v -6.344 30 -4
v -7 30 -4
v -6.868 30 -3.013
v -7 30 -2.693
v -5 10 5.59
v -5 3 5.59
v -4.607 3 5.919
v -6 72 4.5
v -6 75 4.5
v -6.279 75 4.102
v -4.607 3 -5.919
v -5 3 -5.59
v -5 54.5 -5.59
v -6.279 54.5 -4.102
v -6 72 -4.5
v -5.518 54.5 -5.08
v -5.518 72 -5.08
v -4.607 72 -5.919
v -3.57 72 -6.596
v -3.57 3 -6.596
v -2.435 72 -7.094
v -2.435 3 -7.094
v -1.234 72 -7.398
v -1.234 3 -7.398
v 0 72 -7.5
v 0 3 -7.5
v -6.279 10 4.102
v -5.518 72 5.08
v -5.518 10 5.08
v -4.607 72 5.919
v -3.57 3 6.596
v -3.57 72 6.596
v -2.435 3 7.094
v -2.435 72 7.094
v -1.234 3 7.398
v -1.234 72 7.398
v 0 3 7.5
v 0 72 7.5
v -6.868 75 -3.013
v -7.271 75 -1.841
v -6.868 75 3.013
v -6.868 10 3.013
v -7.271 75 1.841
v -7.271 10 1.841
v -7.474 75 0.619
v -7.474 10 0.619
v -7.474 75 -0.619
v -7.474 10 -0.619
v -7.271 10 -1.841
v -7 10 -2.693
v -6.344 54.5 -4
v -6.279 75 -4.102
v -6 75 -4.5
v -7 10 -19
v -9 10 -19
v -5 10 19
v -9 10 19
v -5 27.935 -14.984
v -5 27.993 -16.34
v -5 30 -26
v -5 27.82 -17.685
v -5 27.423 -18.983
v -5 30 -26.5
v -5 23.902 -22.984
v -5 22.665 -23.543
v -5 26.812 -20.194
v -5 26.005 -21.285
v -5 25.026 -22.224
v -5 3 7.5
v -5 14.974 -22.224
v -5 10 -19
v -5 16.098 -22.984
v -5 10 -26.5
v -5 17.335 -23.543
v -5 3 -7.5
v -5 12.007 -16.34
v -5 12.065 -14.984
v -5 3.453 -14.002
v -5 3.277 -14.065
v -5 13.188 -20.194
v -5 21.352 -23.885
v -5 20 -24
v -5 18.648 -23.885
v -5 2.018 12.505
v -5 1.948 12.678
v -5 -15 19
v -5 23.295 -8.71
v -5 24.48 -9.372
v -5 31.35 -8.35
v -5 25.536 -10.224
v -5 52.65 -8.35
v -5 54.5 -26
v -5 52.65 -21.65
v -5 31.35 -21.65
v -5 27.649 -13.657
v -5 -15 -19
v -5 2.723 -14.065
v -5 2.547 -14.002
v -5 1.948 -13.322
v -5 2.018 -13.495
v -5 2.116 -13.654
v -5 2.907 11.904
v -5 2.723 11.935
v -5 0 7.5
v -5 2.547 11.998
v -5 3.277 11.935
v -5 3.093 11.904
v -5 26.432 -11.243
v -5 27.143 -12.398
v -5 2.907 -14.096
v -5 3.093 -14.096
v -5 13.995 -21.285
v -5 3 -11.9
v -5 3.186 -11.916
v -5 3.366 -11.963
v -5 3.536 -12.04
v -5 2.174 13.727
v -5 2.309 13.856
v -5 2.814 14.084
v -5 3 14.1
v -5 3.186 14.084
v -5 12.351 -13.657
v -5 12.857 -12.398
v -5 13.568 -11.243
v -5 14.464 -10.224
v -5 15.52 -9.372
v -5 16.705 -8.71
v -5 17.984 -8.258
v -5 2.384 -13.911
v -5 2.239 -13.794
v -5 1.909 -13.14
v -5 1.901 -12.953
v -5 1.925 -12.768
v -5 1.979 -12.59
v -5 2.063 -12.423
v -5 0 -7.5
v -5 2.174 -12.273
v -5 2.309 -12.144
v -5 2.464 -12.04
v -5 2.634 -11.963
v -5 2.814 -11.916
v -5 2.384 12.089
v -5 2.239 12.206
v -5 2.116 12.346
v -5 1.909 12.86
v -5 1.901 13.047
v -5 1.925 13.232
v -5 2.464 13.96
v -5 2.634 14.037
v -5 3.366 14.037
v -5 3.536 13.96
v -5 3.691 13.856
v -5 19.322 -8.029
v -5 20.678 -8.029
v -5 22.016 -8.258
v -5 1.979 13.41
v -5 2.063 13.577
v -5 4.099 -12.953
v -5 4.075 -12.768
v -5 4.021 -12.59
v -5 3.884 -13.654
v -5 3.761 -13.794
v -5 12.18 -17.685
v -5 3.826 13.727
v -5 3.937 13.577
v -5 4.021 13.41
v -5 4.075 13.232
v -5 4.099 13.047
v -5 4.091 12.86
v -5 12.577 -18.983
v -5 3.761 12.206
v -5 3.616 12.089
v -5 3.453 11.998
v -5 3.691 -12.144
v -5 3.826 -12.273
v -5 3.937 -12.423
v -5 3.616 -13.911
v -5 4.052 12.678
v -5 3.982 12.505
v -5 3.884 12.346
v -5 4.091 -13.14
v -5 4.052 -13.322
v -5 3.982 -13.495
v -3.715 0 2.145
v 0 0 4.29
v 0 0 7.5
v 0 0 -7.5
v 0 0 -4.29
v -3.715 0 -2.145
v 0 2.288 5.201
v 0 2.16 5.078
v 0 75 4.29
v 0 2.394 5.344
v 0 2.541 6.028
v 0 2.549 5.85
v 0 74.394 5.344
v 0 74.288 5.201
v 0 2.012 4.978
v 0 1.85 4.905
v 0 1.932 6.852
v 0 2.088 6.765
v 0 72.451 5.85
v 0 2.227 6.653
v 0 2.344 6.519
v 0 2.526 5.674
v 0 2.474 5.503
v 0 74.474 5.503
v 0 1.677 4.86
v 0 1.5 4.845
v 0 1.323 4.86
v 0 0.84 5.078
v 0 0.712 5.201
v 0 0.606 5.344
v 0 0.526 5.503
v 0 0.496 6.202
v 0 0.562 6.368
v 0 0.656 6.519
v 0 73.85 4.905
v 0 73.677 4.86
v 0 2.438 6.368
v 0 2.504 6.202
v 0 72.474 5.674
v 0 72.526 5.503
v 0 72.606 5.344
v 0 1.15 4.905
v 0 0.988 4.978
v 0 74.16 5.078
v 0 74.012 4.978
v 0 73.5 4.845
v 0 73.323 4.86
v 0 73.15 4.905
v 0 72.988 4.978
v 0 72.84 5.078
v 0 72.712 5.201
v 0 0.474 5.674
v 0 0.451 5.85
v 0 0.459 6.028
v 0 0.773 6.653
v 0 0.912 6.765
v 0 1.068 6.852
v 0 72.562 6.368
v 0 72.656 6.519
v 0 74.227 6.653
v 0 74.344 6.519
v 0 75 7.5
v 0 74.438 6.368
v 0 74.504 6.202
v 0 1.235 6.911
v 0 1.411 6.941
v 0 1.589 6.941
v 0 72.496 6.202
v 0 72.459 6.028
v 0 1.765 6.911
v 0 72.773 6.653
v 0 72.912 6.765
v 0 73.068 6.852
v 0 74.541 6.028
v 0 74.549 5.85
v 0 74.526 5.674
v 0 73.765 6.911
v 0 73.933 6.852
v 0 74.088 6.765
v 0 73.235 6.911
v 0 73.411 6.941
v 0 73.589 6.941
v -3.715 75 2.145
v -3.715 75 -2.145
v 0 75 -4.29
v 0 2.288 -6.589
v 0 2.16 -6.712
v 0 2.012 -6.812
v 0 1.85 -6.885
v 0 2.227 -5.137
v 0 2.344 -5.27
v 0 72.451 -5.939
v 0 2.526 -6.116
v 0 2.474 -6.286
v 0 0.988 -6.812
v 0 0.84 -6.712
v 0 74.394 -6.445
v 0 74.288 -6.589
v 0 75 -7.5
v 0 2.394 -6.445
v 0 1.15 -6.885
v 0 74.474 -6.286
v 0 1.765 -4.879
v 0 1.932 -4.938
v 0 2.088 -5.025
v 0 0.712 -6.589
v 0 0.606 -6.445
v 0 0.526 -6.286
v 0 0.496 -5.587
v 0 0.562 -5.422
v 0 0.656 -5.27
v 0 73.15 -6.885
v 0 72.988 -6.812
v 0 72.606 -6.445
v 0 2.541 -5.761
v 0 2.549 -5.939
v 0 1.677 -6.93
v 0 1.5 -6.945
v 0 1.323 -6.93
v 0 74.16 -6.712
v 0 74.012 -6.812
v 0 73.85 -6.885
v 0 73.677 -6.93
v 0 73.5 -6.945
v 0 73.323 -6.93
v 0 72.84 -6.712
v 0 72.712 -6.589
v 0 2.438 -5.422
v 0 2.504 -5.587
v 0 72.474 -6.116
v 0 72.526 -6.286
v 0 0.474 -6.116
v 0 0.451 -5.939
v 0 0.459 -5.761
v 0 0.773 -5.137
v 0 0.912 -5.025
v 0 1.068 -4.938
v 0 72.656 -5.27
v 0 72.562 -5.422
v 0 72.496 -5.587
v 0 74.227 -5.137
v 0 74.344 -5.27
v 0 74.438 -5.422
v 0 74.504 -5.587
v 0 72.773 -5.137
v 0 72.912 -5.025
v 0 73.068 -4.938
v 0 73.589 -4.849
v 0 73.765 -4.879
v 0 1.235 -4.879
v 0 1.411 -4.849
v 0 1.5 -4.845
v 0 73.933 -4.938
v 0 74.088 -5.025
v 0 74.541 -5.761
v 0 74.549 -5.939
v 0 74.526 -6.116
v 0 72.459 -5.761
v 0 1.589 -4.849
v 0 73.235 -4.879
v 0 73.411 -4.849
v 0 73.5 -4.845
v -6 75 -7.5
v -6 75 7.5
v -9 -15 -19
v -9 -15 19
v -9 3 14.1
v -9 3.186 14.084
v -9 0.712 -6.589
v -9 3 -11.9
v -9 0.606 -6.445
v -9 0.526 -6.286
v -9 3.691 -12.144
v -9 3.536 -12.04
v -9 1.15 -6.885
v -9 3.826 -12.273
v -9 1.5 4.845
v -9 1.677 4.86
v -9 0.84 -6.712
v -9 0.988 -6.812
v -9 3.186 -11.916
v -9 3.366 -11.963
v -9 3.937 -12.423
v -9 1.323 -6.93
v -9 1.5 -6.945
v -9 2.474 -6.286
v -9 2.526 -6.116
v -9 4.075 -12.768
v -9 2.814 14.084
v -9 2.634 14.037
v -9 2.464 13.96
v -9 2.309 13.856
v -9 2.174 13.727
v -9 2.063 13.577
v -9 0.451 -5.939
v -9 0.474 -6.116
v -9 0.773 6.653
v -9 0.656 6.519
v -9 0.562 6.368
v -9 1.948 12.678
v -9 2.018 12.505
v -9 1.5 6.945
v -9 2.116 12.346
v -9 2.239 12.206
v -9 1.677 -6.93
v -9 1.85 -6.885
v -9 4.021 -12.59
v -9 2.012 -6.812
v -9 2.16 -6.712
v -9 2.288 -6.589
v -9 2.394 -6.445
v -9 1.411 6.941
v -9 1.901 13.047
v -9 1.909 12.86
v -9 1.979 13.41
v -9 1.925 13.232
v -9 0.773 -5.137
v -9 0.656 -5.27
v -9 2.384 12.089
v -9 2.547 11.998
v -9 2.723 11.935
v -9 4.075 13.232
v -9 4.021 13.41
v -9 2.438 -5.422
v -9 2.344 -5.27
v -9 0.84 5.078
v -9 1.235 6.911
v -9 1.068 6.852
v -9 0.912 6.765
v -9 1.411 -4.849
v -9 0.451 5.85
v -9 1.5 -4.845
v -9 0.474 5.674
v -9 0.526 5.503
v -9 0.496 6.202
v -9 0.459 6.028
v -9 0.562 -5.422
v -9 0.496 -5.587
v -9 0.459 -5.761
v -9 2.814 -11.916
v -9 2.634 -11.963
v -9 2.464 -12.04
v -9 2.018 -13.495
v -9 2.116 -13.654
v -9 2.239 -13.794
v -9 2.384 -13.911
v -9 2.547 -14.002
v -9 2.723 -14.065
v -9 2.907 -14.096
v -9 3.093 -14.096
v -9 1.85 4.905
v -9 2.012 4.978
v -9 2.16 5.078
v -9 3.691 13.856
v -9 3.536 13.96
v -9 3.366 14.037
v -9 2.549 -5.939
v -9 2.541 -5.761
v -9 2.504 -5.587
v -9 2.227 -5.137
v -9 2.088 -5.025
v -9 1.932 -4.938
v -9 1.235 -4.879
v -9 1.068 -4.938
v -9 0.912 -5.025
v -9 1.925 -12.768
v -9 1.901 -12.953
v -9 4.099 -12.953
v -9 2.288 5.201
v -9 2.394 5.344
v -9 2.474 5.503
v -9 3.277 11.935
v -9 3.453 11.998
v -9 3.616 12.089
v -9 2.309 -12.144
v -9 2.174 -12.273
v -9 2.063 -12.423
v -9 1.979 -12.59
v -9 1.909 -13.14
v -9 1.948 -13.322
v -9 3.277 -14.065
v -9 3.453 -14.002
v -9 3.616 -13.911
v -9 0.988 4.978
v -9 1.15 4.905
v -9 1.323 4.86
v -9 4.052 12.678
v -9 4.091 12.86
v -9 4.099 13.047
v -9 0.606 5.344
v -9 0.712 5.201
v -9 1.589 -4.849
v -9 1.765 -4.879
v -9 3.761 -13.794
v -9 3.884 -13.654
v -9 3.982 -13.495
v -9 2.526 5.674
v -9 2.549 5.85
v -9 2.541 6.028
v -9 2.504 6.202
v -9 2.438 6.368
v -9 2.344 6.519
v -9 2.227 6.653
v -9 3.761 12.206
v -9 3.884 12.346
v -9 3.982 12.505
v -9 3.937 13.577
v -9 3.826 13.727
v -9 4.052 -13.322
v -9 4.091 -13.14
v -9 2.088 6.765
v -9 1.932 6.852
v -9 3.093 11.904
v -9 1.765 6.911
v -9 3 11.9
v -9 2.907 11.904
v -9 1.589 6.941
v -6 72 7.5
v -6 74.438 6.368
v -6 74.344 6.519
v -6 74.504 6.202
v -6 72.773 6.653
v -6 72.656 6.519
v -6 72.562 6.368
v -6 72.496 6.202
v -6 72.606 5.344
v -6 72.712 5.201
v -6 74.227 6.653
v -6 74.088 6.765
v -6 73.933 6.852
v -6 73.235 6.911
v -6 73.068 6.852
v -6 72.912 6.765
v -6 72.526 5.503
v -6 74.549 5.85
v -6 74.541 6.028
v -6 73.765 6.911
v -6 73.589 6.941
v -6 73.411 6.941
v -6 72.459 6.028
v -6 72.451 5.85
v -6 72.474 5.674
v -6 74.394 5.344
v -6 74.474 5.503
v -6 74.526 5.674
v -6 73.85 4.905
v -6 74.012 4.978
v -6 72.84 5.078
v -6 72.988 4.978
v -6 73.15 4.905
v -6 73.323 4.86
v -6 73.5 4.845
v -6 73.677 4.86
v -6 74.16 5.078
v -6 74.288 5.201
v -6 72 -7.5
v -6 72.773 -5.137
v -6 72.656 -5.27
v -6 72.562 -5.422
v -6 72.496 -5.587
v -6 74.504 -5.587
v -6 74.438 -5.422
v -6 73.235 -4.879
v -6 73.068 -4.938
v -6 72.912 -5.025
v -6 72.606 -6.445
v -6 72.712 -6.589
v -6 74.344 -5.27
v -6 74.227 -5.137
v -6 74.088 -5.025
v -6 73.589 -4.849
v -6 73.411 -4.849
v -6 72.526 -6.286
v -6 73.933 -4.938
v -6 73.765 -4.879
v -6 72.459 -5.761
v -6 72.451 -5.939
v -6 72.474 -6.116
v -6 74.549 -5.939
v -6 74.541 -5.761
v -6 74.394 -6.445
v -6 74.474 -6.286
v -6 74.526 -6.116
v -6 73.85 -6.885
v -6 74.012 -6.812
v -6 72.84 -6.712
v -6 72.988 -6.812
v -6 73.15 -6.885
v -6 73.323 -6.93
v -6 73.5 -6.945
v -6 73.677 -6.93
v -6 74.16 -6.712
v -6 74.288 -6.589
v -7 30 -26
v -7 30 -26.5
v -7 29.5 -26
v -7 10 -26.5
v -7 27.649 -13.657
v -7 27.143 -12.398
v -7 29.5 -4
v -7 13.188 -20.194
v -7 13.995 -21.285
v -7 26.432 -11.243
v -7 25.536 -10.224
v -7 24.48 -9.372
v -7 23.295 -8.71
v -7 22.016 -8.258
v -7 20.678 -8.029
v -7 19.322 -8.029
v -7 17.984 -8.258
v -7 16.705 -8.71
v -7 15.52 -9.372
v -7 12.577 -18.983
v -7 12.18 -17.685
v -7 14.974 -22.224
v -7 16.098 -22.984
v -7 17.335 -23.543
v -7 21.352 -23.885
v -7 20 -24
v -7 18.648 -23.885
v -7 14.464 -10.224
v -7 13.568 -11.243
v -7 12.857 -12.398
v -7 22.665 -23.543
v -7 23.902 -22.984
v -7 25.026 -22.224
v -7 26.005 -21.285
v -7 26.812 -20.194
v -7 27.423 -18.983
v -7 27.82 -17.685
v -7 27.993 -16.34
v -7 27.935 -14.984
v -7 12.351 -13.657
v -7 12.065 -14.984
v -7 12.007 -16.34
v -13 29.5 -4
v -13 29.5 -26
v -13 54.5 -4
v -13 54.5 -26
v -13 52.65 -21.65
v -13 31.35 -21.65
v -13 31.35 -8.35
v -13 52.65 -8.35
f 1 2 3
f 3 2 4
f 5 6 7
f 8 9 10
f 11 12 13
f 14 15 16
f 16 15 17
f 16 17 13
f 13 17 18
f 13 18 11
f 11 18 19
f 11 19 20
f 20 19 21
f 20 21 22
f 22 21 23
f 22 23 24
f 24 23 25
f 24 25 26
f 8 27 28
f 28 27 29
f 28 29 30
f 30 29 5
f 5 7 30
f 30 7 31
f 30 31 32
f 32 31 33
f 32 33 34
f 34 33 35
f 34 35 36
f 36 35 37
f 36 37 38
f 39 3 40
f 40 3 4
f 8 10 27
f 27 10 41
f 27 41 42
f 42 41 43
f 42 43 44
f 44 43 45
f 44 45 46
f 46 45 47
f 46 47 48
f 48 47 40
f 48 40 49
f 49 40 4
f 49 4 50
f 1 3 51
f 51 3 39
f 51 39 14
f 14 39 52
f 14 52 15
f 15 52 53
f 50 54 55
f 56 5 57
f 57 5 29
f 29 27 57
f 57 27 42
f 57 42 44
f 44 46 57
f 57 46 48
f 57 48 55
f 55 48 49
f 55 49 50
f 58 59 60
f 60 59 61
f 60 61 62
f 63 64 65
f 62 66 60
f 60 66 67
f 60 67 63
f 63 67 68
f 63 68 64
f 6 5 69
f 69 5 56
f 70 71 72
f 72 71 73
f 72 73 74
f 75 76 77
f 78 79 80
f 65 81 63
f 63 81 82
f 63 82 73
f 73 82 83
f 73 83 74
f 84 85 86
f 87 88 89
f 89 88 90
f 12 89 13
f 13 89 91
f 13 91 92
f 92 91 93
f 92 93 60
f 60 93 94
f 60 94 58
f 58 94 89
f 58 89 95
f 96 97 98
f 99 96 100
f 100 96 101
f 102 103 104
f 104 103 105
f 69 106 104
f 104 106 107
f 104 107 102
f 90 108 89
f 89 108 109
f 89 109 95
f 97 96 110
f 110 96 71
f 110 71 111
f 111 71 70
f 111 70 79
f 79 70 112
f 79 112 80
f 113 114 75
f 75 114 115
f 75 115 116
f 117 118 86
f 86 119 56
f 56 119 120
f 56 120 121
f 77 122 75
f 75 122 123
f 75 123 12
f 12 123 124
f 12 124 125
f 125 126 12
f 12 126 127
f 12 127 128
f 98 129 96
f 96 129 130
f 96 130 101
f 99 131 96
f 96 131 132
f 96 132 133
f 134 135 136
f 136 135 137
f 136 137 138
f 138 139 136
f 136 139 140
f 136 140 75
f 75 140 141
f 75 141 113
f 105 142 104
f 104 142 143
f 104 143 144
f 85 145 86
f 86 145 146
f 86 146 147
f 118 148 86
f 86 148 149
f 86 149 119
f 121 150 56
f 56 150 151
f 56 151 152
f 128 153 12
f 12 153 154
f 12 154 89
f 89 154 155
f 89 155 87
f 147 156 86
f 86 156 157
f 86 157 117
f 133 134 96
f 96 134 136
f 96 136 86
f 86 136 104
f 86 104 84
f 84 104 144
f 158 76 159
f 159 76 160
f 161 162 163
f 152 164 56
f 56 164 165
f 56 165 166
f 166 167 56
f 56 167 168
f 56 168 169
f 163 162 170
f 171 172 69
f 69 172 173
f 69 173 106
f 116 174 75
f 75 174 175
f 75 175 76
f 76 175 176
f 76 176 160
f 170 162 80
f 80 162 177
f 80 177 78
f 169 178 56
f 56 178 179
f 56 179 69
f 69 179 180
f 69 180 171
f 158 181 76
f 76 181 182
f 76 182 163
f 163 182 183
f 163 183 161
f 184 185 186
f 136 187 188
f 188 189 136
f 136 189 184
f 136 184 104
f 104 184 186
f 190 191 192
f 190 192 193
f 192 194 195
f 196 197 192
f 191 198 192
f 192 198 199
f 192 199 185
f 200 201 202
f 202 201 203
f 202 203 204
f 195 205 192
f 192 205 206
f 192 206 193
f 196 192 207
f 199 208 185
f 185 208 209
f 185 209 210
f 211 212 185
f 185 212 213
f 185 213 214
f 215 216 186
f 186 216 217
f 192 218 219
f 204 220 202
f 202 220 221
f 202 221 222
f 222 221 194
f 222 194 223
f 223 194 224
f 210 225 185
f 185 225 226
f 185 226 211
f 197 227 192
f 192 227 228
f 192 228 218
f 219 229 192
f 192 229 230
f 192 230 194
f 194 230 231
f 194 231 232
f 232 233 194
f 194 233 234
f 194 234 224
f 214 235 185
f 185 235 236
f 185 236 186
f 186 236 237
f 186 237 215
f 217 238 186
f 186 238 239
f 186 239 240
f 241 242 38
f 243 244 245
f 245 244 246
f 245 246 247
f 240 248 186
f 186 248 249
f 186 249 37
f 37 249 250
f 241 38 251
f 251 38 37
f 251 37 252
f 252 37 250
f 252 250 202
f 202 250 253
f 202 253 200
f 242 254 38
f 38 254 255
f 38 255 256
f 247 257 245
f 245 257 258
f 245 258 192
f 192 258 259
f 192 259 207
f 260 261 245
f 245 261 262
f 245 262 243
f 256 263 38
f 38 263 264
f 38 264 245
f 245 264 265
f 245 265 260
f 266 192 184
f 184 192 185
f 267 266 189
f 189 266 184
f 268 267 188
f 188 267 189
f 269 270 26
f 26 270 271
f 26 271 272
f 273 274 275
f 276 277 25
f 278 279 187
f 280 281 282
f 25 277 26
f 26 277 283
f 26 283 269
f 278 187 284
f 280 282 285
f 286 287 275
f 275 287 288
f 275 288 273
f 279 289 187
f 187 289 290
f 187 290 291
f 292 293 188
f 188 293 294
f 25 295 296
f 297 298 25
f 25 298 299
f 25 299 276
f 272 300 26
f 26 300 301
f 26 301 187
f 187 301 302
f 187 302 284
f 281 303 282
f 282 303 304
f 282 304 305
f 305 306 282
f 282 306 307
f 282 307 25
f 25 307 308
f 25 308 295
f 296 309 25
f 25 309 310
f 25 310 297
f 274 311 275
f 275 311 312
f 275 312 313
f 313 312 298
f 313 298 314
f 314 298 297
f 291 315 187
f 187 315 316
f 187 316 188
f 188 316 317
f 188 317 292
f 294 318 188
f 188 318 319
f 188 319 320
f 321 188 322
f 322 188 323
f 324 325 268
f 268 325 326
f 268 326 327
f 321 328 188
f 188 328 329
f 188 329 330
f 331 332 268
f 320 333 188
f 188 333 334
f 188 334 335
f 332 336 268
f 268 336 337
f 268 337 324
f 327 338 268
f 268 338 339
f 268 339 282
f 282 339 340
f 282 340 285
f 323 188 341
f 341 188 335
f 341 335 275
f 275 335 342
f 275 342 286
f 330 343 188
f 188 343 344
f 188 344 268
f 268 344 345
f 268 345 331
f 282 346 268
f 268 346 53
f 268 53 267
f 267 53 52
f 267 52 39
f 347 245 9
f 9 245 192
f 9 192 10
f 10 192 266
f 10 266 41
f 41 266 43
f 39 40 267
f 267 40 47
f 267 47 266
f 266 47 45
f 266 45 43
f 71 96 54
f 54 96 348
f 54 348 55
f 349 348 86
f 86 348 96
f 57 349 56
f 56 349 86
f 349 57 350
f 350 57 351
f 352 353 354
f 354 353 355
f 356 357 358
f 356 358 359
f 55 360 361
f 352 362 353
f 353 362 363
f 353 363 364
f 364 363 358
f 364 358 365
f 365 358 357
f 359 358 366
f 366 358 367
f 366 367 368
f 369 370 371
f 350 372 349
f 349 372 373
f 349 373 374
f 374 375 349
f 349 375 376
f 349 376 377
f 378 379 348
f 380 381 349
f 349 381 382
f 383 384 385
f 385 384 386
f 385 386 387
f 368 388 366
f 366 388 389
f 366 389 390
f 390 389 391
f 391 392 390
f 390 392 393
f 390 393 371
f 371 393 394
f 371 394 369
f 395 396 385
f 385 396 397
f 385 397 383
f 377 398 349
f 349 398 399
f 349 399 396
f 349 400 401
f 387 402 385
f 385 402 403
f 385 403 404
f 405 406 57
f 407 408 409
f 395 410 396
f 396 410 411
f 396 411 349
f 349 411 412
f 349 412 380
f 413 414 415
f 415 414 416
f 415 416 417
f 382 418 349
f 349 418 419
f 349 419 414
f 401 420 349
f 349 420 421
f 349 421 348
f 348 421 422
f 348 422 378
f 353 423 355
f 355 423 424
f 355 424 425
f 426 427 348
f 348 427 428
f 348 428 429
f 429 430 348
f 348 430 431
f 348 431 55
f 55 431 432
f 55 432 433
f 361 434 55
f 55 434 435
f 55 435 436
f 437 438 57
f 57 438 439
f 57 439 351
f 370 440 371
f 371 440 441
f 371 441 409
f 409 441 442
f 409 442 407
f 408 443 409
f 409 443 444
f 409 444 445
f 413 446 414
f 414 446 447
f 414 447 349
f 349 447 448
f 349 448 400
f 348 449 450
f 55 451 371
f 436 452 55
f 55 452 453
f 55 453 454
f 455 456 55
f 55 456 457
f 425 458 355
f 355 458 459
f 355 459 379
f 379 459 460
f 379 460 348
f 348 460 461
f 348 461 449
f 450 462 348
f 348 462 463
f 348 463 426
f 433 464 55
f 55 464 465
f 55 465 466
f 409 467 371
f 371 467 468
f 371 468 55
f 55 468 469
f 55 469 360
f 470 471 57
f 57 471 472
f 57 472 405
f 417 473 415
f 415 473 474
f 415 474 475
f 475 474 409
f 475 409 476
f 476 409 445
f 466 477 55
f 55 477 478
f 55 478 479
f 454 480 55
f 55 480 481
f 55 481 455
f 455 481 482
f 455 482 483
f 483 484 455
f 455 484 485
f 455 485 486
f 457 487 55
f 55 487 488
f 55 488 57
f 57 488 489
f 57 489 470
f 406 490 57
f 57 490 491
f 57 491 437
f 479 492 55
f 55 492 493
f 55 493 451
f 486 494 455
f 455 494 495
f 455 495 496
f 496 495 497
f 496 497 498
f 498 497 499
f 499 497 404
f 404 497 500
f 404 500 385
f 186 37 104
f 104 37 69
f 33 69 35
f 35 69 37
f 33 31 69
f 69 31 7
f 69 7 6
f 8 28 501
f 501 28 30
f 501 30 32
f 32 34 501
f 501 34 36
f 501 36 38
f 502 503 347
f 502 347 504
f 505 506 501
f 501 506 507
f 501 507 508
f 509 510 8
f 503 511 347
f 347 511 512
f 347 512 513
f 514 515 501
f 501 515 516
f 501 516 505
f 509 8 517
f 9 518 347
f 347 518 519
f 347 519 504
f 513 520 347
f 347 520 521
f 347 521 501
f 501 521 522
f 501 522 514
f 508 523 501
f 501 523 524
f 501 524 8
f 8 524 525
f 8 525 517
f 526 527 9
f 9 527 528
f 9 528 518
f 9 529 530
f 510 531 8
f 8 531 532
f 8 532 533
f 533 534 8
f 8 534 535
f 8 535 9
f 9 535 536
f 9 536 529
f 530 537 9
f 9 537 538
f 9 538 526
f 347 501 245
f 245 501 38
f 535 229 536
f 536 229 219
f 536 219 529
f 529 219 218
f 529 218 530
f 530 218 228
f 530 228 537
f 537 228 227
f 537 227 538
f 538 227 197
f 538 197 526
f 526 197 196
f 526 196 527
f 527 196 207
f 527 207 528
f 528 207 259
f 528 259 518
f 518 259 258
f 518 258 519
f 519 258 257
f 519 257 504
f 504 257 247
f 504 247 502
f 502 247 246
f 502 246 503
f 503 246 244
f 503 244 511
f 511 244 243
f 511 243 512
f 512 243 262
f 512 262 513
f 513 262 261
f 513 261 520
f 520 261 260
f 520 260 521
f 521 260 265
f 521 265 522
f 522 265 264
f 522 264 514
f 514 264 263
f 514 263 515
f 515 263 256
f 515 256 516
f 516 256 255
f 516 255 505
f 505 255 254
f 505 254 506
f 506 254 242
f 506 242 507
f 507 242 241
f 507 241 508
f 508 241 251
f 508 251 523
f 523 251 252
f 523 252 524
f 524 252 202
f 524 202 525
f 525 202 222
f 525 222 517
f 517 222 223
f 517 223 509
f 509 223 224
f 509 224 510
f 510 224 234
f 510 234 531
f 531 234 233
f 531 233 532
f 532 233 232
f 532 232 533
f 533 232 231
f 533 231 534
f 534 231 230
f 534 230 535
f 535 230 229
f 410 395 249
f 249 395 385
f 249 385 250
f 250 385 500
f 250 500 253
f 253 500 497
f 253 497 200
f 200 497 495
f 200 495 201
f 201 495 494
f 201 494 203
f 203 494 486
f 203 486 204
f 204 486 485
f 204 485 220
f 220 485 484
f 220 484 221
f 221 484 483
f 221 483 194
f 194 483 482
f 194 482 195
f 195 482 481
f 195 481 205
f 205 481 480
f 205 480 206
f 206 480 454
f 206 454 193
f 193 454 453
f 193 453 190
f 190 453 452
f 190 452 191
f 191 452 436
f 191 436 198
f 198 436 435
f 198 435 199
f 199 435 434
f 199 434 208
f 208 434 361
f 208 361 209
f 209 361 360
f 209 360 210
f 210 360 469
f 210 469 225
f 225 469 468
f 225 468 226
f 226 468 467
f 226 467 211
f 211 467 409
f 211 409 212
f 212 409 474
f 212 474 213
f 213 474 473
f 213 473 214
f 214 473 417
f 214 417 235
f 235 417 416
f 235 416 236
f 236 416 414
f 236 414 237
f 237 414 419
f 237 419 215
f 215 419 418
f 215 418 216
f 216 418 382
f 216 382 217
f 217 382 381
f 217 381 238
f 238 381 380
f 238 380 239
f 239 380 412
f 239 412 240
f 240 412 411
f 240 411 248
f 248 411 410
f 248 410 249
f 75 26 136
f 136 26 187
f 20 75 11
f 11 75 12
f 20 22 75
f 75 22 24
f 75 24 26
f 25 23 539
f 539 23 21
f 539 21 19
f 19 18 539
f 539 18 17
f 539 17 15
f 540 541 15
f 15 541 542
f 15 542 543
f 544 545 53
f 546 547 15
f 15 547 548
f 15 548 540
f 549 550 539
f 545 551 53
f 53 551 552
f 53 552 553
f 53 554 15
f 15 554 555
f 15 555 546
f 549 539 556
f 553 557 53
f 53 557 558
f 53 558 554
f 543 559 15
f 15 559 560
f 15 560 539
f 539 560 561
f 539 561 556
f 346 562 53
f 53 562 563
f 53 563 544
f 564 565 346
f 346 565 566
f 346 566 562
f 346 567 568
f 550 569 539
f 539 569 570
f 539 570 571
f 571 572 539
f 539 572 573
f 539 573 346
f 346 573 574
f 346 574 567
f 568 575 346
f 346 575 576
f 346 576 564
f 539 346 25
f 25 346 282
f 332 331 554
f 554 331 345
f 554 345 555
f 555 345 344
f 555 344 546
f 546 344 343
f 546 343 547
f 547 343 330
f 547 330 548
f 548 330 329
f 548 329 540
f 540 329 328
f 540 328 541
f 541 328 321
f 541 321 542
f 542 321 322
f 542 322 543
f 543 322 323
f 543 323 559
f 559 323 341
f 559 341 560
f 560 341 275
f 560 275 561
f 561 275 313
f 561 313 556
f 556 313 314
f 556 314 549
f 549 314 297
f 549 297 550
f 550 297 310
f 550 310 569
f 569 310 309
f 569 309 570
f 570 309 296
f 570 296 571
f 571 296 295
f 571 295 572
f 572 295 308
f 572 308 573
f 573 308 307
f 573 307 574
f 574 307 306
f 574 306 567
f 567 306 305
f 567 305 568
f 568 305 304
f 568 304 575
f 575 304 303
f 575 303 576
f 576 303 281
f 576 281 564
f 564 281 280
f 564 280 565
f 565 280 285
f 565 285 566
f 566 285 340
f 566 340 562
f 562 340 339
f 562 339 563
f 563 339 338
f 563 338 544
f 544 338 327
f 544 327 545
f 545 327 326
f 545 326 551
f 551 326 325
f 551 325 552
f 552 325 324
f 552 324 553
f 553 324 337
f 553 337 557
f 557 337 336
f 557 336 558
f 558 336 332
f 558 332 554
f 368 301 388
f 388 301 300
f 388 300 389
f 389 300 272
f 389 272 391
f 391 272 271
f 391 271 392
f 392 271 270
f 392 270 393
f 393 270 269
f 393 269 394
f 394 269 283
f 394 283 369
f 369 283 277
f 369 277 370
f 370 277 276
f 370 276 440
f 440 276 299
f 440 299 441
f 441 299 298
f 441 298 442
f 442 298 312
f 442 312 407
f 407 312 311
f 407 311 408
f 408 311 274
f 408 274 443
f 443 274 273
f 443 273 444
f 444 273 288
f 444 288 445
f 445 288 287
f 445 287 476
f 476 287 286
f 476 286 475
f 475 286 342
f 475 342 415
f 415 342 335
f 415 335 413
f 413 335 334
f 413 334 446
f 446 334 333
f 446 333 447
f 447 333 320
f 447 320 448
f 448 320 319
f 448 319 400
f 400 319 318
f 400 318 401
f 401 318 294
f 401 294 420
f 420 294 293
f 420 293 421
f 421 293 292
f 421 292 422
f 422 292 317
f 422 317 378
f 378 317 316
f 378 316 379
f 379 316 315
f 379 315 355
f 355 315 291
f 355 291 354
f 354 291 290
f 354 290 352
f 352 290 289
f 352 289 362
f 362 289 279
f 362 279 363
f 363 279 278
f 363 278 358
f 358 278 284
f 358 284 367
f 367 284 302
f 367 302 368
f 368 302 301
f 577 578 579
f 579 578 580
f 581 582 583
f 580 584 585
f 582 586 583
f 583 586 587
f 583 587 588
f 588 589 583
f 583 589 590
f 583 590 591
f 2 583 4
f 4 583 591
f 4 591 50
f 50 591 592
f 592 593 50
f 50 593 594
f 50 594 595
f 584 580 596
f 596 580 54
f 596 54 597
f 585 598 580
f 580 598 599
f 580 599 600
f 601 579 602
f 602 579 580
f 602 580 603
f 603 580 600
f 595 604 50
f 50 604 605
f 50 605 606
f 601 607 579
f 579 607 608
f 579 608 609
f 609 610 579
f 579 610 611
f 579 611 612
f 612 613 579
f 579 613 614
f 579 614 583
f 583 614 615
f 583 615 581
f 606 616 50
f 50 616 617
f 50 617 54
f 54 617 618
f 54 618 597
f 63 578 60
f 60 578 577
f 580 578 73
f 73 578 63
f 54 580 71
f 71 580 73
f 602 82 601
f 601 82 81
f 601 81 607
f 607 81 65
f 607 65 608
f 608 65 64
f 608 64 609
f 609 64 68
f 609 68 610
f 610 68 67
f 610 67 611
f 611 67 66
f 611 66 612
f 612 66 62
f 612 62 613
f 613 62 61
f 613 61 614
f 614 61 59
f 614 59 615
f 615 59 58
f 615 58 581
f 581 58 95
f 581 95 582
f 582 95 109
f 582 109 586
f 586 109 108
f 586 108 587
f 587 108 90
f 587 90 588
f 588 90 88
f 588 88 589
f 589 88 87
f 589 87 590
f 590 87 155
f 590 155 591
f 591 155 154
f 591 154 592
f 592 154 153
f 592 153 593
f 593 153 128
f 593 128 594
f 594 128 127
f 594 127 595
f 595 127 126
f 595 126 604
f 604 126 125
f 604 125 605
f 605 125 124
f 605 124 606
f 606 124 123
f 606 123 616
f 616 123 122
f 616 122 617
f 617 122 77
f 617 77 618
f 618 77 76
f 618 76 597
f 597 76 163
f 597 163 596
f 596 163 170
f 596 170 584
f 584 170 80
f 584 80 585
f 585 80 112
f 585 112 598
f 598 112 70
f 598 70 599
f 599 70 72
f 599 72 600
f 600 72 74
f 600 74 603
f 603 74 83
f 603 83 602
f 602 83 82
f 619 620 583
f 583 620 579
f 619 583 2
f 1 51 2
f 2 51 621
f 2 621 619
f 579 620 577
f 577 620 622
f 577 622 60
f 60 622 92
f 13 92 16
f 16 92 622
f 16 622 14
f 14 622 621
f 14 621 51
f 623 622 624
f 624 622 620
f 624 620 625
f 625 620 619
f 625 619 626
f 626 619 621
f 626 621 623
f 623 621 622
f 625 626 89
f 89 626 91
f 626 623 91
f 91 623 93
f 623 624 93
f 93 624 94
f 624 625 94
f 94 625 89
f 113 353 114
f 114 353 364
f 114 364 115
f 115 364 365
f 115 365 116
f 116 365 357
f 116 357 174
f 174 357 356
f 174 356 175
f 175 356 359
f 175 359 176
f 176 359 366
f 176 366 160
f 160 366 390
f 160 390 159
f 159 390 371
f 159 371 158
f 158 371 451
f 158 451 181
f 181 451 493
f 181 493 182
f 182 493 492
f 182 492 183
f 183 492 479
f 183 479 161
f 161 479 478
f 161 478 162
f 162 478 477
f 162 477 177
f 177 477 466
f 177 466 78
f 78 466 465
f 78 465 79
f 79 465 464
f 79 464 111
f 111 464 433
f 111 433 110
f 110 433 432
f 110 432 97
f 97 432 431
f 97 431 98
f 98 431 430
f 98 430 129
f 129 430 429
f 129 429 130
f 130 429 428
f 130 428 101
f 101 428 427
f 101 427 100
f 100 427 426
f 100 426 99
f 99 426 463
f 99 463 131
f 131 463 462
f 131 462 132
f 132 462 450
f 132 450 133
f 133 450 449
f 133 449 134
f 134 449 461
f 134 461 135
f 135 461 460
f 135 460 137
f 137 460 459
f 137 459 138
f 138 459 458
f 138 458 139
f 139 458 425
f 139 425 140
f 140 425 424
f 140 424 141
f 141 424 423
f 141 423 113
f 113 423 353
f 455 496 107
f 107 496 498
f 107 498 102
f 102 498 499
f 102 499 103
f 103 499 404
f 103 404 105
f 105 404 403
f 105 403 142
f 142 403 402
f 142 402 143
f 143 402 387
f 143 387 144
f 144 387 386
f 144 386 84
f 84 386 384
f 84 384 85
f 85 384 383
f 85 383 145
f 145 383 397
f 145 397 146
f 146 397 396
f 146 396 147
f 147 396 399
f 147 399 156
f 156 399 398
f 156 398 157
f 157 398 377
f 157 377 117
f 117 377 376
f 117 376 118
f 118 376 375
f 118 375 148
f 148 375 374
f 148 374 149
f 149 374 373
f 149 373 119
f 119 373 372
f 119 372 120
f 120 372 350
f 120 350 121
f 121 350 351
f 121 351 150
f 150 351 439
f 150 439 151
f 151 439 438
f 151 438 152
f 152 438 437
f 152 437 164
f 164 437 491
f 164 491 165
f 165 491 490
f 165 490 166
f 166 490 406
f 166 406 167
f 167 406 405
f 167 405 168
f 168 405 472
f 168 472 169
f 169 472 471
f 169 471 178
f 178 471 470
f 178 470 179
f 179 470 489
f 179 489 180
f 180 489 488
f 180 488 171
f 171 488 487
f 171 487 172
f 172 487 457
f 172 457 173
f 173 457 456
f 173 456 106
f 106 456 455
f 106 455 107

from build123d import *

# Parameters (mm, degrees)
MAIN_BODY_DEPTH                 = 75
SKETCH6_W                       = 38
SKETCH6_H                       = 25
BASE_FIT_PLATE_DEPTH            = 4
SKETCH3_W                       = 3.2102875
SKETCH3_H                       = 3
FRONT_SCREW_HOLES_SUPPORT_DEPTH = 6
FRONT_SCREW_HOLES_REACH         = 79.891
SKETCH4_R                       = 1.05
SKETCH7_W                       = 29
SKETCH7_H                       = 20
SKETCH7_R                       = 8
BUTTON_HOLE_DEPTH               = 2
SKETCH8_W                       = 22
SKETCH8_H                       = 25
SKETCH8_W_2                     = 13.3
SKETCH8_H_2                     = 21.3
SWITCH_HOLE_DEPTH               = 8
SKETCH9_R                       = 1.1
BASE_SCREW_HOLES_DEPTH          = 81.051545894


with BuildPart() as part:
    # Sketch1 → Main Body (new body)
    with BuildSketch(Plane(origin=(0, 0, 0), x_dir=(1, 0, 0), z_dir=(0, 1, 0))):
        with BuildLine():
            Line((0, 4.2897125), (-3.715, 2.14485625))
            Line((-3.715, 2.14485625), (-3.715, -2.14485625))
            Line((-3.715, -2.14485625), (0, -4.2897125))
            Line((0, -4.2897125), (0, -7.5))
            ThreePointArc((0, -7.5), (-7.5, 0), (0, 7.5))
            Line((0, 7.5), (0, 4.2897125))
        make_face()
    extrude(amount=MAIN_BODY_DEPTH)

    # Sketch6 → Base Fit Plate (add)
    with BuildSketch(Plane(origin=(-5, 0, 0), x_dir=(0, 0, -1), z_dir=(1, 0, 0))):
        with Locations((0, -2.5)):
            Rectangle(SKETCH6_W, SKETCH6_H)
    extrude(amount=-BASE_FIT_PLATE_DEPTH)

    # Sketch3 → Front Screw Holes Support (add)
    with BuildSketch(Plane(origin=(0, 0, 0), x_dir=(0, 0, -1), z_dir=(1, 0, 0))):
        with Locations((-5.89485625, 1.5)):
            Rectangle(SKETCH3_W, SKETCH3_H)
        with Locations((-5.89485625, 73.5)):
            Rectangle(SKETCH3_W, SKETCH3_H)
    front_screw_holes_support = extrude(amount=-FRONT_SCREW_HOLES_SUPPORT_DEPTH)

    # Sketch4 → Front Screw Holes (cut, up to next)
    with BuildSketch(Plane(origin=(0, 0, 0), x_dir=(0, 0, -1), z_dir=(1, 0, 0)), mode=Mode.PRIVATE) as front_screw_holes_sk1:
        with Locations((-5.89485625, 73.5)):
            Circle(SKETCH4_R)
    front_screw_holes_tool1 = extrude(front_screw_holes_sk1.sketch, amount=-FRONT_SCREW_HOLES_REACH, mode=Mode.PRIVATE) & part.part
    # Sketch4 → Front Screw Holes (cut, up to next)
    with BuildSketch(Plane(origin=(0, 0, 0), x_dir=(0, 0, -1), z_dir=(1, 0, 0)), mode=Mode.PRIVATE) as front_screw_holes_sk2:
        with Locations((-5.89485625, 1.5)):
            Circle(SKETCH4_R)
    front_screw_holes_tool2 = extrude(front_screw_holes_sk2.sketch, amount=-FRONT_SCREW_HOLES_REACH, mode=Mode.PRIVATE) & part.part
    front_screw_holes_1 = front_screw_holes_tool1.solids().sort_by_distance((0, 73.5, 5.894856))[0]
    add(front_screw_holes_1, mode=Mode.SUBTRACT)
    front_screw_holes_2 = front_screw_holes_tool2.solids().sort_by_distance((0, 1.5, 5.894856))[0]
    add(front_screw_holes_2, mode=Mode.SUBTRACT)
    front_screw_holes = front_screw_holes_1 + front_screw_holes_2  # Front Screw Holes as one shape, for the pattern or mirror that repeats it

    # Back Screw Holes and Support: Front Screw Holes Support, Front Screw Holes across plane
    add(front_screw_holes_support.mirror(Plane.XY))
    add(front_screw_holes.mirror(Plane.XY), mode=Mode.SUBTRACT)

    # Sketch7 → Button Hole (add)
    with BuildSketch(Plane(origin=(-5, 0, 0), x_dir=(0, 0, -1), z_dir=(1, 0, 0))):
        with Locations((12, 20)):
            Rectangle(SKETCH7_W, SKETCH7_H)
        with Locations((16, 20)):
            Circle(SKETCH7_R, mode=Mode.SUBTRACT)
    extrude(amount=-BUTTON_HOLE_DEPTH)

    # Sketch8 → Switch Hole (add)
    with BuildSketch(Plane(origin=(-5, 0, 0), x_dir=(0, 0, -1), z_dir=(1, 0, 0))):
        with Locations((15, 42)):
            Rectangle(SKETCH8_W, SKETCH8_H)
        with Locations((15, 42)):
            Rectangle(SKETCH8_W_2, SKETCH8_H_2, mode=Mode.SUBTRACT)
    extrude(amount=-SWITCH_HOLE_DEPTH)

    # Sketch9 → Base Screw Holes (cut, through all)
    with BuildSketch(Plane.ZY.offset(9)):
        with Locations((-13, 3)):
            Circle(SKETCH9_R)
        with Locations((13, 3)):
            Circle(SKETCH9_R)
    extrude(amount=-BASE_SCREW_HOLES_DEPTH, mode=Mode.SUBTRACT)


solid = part.part
